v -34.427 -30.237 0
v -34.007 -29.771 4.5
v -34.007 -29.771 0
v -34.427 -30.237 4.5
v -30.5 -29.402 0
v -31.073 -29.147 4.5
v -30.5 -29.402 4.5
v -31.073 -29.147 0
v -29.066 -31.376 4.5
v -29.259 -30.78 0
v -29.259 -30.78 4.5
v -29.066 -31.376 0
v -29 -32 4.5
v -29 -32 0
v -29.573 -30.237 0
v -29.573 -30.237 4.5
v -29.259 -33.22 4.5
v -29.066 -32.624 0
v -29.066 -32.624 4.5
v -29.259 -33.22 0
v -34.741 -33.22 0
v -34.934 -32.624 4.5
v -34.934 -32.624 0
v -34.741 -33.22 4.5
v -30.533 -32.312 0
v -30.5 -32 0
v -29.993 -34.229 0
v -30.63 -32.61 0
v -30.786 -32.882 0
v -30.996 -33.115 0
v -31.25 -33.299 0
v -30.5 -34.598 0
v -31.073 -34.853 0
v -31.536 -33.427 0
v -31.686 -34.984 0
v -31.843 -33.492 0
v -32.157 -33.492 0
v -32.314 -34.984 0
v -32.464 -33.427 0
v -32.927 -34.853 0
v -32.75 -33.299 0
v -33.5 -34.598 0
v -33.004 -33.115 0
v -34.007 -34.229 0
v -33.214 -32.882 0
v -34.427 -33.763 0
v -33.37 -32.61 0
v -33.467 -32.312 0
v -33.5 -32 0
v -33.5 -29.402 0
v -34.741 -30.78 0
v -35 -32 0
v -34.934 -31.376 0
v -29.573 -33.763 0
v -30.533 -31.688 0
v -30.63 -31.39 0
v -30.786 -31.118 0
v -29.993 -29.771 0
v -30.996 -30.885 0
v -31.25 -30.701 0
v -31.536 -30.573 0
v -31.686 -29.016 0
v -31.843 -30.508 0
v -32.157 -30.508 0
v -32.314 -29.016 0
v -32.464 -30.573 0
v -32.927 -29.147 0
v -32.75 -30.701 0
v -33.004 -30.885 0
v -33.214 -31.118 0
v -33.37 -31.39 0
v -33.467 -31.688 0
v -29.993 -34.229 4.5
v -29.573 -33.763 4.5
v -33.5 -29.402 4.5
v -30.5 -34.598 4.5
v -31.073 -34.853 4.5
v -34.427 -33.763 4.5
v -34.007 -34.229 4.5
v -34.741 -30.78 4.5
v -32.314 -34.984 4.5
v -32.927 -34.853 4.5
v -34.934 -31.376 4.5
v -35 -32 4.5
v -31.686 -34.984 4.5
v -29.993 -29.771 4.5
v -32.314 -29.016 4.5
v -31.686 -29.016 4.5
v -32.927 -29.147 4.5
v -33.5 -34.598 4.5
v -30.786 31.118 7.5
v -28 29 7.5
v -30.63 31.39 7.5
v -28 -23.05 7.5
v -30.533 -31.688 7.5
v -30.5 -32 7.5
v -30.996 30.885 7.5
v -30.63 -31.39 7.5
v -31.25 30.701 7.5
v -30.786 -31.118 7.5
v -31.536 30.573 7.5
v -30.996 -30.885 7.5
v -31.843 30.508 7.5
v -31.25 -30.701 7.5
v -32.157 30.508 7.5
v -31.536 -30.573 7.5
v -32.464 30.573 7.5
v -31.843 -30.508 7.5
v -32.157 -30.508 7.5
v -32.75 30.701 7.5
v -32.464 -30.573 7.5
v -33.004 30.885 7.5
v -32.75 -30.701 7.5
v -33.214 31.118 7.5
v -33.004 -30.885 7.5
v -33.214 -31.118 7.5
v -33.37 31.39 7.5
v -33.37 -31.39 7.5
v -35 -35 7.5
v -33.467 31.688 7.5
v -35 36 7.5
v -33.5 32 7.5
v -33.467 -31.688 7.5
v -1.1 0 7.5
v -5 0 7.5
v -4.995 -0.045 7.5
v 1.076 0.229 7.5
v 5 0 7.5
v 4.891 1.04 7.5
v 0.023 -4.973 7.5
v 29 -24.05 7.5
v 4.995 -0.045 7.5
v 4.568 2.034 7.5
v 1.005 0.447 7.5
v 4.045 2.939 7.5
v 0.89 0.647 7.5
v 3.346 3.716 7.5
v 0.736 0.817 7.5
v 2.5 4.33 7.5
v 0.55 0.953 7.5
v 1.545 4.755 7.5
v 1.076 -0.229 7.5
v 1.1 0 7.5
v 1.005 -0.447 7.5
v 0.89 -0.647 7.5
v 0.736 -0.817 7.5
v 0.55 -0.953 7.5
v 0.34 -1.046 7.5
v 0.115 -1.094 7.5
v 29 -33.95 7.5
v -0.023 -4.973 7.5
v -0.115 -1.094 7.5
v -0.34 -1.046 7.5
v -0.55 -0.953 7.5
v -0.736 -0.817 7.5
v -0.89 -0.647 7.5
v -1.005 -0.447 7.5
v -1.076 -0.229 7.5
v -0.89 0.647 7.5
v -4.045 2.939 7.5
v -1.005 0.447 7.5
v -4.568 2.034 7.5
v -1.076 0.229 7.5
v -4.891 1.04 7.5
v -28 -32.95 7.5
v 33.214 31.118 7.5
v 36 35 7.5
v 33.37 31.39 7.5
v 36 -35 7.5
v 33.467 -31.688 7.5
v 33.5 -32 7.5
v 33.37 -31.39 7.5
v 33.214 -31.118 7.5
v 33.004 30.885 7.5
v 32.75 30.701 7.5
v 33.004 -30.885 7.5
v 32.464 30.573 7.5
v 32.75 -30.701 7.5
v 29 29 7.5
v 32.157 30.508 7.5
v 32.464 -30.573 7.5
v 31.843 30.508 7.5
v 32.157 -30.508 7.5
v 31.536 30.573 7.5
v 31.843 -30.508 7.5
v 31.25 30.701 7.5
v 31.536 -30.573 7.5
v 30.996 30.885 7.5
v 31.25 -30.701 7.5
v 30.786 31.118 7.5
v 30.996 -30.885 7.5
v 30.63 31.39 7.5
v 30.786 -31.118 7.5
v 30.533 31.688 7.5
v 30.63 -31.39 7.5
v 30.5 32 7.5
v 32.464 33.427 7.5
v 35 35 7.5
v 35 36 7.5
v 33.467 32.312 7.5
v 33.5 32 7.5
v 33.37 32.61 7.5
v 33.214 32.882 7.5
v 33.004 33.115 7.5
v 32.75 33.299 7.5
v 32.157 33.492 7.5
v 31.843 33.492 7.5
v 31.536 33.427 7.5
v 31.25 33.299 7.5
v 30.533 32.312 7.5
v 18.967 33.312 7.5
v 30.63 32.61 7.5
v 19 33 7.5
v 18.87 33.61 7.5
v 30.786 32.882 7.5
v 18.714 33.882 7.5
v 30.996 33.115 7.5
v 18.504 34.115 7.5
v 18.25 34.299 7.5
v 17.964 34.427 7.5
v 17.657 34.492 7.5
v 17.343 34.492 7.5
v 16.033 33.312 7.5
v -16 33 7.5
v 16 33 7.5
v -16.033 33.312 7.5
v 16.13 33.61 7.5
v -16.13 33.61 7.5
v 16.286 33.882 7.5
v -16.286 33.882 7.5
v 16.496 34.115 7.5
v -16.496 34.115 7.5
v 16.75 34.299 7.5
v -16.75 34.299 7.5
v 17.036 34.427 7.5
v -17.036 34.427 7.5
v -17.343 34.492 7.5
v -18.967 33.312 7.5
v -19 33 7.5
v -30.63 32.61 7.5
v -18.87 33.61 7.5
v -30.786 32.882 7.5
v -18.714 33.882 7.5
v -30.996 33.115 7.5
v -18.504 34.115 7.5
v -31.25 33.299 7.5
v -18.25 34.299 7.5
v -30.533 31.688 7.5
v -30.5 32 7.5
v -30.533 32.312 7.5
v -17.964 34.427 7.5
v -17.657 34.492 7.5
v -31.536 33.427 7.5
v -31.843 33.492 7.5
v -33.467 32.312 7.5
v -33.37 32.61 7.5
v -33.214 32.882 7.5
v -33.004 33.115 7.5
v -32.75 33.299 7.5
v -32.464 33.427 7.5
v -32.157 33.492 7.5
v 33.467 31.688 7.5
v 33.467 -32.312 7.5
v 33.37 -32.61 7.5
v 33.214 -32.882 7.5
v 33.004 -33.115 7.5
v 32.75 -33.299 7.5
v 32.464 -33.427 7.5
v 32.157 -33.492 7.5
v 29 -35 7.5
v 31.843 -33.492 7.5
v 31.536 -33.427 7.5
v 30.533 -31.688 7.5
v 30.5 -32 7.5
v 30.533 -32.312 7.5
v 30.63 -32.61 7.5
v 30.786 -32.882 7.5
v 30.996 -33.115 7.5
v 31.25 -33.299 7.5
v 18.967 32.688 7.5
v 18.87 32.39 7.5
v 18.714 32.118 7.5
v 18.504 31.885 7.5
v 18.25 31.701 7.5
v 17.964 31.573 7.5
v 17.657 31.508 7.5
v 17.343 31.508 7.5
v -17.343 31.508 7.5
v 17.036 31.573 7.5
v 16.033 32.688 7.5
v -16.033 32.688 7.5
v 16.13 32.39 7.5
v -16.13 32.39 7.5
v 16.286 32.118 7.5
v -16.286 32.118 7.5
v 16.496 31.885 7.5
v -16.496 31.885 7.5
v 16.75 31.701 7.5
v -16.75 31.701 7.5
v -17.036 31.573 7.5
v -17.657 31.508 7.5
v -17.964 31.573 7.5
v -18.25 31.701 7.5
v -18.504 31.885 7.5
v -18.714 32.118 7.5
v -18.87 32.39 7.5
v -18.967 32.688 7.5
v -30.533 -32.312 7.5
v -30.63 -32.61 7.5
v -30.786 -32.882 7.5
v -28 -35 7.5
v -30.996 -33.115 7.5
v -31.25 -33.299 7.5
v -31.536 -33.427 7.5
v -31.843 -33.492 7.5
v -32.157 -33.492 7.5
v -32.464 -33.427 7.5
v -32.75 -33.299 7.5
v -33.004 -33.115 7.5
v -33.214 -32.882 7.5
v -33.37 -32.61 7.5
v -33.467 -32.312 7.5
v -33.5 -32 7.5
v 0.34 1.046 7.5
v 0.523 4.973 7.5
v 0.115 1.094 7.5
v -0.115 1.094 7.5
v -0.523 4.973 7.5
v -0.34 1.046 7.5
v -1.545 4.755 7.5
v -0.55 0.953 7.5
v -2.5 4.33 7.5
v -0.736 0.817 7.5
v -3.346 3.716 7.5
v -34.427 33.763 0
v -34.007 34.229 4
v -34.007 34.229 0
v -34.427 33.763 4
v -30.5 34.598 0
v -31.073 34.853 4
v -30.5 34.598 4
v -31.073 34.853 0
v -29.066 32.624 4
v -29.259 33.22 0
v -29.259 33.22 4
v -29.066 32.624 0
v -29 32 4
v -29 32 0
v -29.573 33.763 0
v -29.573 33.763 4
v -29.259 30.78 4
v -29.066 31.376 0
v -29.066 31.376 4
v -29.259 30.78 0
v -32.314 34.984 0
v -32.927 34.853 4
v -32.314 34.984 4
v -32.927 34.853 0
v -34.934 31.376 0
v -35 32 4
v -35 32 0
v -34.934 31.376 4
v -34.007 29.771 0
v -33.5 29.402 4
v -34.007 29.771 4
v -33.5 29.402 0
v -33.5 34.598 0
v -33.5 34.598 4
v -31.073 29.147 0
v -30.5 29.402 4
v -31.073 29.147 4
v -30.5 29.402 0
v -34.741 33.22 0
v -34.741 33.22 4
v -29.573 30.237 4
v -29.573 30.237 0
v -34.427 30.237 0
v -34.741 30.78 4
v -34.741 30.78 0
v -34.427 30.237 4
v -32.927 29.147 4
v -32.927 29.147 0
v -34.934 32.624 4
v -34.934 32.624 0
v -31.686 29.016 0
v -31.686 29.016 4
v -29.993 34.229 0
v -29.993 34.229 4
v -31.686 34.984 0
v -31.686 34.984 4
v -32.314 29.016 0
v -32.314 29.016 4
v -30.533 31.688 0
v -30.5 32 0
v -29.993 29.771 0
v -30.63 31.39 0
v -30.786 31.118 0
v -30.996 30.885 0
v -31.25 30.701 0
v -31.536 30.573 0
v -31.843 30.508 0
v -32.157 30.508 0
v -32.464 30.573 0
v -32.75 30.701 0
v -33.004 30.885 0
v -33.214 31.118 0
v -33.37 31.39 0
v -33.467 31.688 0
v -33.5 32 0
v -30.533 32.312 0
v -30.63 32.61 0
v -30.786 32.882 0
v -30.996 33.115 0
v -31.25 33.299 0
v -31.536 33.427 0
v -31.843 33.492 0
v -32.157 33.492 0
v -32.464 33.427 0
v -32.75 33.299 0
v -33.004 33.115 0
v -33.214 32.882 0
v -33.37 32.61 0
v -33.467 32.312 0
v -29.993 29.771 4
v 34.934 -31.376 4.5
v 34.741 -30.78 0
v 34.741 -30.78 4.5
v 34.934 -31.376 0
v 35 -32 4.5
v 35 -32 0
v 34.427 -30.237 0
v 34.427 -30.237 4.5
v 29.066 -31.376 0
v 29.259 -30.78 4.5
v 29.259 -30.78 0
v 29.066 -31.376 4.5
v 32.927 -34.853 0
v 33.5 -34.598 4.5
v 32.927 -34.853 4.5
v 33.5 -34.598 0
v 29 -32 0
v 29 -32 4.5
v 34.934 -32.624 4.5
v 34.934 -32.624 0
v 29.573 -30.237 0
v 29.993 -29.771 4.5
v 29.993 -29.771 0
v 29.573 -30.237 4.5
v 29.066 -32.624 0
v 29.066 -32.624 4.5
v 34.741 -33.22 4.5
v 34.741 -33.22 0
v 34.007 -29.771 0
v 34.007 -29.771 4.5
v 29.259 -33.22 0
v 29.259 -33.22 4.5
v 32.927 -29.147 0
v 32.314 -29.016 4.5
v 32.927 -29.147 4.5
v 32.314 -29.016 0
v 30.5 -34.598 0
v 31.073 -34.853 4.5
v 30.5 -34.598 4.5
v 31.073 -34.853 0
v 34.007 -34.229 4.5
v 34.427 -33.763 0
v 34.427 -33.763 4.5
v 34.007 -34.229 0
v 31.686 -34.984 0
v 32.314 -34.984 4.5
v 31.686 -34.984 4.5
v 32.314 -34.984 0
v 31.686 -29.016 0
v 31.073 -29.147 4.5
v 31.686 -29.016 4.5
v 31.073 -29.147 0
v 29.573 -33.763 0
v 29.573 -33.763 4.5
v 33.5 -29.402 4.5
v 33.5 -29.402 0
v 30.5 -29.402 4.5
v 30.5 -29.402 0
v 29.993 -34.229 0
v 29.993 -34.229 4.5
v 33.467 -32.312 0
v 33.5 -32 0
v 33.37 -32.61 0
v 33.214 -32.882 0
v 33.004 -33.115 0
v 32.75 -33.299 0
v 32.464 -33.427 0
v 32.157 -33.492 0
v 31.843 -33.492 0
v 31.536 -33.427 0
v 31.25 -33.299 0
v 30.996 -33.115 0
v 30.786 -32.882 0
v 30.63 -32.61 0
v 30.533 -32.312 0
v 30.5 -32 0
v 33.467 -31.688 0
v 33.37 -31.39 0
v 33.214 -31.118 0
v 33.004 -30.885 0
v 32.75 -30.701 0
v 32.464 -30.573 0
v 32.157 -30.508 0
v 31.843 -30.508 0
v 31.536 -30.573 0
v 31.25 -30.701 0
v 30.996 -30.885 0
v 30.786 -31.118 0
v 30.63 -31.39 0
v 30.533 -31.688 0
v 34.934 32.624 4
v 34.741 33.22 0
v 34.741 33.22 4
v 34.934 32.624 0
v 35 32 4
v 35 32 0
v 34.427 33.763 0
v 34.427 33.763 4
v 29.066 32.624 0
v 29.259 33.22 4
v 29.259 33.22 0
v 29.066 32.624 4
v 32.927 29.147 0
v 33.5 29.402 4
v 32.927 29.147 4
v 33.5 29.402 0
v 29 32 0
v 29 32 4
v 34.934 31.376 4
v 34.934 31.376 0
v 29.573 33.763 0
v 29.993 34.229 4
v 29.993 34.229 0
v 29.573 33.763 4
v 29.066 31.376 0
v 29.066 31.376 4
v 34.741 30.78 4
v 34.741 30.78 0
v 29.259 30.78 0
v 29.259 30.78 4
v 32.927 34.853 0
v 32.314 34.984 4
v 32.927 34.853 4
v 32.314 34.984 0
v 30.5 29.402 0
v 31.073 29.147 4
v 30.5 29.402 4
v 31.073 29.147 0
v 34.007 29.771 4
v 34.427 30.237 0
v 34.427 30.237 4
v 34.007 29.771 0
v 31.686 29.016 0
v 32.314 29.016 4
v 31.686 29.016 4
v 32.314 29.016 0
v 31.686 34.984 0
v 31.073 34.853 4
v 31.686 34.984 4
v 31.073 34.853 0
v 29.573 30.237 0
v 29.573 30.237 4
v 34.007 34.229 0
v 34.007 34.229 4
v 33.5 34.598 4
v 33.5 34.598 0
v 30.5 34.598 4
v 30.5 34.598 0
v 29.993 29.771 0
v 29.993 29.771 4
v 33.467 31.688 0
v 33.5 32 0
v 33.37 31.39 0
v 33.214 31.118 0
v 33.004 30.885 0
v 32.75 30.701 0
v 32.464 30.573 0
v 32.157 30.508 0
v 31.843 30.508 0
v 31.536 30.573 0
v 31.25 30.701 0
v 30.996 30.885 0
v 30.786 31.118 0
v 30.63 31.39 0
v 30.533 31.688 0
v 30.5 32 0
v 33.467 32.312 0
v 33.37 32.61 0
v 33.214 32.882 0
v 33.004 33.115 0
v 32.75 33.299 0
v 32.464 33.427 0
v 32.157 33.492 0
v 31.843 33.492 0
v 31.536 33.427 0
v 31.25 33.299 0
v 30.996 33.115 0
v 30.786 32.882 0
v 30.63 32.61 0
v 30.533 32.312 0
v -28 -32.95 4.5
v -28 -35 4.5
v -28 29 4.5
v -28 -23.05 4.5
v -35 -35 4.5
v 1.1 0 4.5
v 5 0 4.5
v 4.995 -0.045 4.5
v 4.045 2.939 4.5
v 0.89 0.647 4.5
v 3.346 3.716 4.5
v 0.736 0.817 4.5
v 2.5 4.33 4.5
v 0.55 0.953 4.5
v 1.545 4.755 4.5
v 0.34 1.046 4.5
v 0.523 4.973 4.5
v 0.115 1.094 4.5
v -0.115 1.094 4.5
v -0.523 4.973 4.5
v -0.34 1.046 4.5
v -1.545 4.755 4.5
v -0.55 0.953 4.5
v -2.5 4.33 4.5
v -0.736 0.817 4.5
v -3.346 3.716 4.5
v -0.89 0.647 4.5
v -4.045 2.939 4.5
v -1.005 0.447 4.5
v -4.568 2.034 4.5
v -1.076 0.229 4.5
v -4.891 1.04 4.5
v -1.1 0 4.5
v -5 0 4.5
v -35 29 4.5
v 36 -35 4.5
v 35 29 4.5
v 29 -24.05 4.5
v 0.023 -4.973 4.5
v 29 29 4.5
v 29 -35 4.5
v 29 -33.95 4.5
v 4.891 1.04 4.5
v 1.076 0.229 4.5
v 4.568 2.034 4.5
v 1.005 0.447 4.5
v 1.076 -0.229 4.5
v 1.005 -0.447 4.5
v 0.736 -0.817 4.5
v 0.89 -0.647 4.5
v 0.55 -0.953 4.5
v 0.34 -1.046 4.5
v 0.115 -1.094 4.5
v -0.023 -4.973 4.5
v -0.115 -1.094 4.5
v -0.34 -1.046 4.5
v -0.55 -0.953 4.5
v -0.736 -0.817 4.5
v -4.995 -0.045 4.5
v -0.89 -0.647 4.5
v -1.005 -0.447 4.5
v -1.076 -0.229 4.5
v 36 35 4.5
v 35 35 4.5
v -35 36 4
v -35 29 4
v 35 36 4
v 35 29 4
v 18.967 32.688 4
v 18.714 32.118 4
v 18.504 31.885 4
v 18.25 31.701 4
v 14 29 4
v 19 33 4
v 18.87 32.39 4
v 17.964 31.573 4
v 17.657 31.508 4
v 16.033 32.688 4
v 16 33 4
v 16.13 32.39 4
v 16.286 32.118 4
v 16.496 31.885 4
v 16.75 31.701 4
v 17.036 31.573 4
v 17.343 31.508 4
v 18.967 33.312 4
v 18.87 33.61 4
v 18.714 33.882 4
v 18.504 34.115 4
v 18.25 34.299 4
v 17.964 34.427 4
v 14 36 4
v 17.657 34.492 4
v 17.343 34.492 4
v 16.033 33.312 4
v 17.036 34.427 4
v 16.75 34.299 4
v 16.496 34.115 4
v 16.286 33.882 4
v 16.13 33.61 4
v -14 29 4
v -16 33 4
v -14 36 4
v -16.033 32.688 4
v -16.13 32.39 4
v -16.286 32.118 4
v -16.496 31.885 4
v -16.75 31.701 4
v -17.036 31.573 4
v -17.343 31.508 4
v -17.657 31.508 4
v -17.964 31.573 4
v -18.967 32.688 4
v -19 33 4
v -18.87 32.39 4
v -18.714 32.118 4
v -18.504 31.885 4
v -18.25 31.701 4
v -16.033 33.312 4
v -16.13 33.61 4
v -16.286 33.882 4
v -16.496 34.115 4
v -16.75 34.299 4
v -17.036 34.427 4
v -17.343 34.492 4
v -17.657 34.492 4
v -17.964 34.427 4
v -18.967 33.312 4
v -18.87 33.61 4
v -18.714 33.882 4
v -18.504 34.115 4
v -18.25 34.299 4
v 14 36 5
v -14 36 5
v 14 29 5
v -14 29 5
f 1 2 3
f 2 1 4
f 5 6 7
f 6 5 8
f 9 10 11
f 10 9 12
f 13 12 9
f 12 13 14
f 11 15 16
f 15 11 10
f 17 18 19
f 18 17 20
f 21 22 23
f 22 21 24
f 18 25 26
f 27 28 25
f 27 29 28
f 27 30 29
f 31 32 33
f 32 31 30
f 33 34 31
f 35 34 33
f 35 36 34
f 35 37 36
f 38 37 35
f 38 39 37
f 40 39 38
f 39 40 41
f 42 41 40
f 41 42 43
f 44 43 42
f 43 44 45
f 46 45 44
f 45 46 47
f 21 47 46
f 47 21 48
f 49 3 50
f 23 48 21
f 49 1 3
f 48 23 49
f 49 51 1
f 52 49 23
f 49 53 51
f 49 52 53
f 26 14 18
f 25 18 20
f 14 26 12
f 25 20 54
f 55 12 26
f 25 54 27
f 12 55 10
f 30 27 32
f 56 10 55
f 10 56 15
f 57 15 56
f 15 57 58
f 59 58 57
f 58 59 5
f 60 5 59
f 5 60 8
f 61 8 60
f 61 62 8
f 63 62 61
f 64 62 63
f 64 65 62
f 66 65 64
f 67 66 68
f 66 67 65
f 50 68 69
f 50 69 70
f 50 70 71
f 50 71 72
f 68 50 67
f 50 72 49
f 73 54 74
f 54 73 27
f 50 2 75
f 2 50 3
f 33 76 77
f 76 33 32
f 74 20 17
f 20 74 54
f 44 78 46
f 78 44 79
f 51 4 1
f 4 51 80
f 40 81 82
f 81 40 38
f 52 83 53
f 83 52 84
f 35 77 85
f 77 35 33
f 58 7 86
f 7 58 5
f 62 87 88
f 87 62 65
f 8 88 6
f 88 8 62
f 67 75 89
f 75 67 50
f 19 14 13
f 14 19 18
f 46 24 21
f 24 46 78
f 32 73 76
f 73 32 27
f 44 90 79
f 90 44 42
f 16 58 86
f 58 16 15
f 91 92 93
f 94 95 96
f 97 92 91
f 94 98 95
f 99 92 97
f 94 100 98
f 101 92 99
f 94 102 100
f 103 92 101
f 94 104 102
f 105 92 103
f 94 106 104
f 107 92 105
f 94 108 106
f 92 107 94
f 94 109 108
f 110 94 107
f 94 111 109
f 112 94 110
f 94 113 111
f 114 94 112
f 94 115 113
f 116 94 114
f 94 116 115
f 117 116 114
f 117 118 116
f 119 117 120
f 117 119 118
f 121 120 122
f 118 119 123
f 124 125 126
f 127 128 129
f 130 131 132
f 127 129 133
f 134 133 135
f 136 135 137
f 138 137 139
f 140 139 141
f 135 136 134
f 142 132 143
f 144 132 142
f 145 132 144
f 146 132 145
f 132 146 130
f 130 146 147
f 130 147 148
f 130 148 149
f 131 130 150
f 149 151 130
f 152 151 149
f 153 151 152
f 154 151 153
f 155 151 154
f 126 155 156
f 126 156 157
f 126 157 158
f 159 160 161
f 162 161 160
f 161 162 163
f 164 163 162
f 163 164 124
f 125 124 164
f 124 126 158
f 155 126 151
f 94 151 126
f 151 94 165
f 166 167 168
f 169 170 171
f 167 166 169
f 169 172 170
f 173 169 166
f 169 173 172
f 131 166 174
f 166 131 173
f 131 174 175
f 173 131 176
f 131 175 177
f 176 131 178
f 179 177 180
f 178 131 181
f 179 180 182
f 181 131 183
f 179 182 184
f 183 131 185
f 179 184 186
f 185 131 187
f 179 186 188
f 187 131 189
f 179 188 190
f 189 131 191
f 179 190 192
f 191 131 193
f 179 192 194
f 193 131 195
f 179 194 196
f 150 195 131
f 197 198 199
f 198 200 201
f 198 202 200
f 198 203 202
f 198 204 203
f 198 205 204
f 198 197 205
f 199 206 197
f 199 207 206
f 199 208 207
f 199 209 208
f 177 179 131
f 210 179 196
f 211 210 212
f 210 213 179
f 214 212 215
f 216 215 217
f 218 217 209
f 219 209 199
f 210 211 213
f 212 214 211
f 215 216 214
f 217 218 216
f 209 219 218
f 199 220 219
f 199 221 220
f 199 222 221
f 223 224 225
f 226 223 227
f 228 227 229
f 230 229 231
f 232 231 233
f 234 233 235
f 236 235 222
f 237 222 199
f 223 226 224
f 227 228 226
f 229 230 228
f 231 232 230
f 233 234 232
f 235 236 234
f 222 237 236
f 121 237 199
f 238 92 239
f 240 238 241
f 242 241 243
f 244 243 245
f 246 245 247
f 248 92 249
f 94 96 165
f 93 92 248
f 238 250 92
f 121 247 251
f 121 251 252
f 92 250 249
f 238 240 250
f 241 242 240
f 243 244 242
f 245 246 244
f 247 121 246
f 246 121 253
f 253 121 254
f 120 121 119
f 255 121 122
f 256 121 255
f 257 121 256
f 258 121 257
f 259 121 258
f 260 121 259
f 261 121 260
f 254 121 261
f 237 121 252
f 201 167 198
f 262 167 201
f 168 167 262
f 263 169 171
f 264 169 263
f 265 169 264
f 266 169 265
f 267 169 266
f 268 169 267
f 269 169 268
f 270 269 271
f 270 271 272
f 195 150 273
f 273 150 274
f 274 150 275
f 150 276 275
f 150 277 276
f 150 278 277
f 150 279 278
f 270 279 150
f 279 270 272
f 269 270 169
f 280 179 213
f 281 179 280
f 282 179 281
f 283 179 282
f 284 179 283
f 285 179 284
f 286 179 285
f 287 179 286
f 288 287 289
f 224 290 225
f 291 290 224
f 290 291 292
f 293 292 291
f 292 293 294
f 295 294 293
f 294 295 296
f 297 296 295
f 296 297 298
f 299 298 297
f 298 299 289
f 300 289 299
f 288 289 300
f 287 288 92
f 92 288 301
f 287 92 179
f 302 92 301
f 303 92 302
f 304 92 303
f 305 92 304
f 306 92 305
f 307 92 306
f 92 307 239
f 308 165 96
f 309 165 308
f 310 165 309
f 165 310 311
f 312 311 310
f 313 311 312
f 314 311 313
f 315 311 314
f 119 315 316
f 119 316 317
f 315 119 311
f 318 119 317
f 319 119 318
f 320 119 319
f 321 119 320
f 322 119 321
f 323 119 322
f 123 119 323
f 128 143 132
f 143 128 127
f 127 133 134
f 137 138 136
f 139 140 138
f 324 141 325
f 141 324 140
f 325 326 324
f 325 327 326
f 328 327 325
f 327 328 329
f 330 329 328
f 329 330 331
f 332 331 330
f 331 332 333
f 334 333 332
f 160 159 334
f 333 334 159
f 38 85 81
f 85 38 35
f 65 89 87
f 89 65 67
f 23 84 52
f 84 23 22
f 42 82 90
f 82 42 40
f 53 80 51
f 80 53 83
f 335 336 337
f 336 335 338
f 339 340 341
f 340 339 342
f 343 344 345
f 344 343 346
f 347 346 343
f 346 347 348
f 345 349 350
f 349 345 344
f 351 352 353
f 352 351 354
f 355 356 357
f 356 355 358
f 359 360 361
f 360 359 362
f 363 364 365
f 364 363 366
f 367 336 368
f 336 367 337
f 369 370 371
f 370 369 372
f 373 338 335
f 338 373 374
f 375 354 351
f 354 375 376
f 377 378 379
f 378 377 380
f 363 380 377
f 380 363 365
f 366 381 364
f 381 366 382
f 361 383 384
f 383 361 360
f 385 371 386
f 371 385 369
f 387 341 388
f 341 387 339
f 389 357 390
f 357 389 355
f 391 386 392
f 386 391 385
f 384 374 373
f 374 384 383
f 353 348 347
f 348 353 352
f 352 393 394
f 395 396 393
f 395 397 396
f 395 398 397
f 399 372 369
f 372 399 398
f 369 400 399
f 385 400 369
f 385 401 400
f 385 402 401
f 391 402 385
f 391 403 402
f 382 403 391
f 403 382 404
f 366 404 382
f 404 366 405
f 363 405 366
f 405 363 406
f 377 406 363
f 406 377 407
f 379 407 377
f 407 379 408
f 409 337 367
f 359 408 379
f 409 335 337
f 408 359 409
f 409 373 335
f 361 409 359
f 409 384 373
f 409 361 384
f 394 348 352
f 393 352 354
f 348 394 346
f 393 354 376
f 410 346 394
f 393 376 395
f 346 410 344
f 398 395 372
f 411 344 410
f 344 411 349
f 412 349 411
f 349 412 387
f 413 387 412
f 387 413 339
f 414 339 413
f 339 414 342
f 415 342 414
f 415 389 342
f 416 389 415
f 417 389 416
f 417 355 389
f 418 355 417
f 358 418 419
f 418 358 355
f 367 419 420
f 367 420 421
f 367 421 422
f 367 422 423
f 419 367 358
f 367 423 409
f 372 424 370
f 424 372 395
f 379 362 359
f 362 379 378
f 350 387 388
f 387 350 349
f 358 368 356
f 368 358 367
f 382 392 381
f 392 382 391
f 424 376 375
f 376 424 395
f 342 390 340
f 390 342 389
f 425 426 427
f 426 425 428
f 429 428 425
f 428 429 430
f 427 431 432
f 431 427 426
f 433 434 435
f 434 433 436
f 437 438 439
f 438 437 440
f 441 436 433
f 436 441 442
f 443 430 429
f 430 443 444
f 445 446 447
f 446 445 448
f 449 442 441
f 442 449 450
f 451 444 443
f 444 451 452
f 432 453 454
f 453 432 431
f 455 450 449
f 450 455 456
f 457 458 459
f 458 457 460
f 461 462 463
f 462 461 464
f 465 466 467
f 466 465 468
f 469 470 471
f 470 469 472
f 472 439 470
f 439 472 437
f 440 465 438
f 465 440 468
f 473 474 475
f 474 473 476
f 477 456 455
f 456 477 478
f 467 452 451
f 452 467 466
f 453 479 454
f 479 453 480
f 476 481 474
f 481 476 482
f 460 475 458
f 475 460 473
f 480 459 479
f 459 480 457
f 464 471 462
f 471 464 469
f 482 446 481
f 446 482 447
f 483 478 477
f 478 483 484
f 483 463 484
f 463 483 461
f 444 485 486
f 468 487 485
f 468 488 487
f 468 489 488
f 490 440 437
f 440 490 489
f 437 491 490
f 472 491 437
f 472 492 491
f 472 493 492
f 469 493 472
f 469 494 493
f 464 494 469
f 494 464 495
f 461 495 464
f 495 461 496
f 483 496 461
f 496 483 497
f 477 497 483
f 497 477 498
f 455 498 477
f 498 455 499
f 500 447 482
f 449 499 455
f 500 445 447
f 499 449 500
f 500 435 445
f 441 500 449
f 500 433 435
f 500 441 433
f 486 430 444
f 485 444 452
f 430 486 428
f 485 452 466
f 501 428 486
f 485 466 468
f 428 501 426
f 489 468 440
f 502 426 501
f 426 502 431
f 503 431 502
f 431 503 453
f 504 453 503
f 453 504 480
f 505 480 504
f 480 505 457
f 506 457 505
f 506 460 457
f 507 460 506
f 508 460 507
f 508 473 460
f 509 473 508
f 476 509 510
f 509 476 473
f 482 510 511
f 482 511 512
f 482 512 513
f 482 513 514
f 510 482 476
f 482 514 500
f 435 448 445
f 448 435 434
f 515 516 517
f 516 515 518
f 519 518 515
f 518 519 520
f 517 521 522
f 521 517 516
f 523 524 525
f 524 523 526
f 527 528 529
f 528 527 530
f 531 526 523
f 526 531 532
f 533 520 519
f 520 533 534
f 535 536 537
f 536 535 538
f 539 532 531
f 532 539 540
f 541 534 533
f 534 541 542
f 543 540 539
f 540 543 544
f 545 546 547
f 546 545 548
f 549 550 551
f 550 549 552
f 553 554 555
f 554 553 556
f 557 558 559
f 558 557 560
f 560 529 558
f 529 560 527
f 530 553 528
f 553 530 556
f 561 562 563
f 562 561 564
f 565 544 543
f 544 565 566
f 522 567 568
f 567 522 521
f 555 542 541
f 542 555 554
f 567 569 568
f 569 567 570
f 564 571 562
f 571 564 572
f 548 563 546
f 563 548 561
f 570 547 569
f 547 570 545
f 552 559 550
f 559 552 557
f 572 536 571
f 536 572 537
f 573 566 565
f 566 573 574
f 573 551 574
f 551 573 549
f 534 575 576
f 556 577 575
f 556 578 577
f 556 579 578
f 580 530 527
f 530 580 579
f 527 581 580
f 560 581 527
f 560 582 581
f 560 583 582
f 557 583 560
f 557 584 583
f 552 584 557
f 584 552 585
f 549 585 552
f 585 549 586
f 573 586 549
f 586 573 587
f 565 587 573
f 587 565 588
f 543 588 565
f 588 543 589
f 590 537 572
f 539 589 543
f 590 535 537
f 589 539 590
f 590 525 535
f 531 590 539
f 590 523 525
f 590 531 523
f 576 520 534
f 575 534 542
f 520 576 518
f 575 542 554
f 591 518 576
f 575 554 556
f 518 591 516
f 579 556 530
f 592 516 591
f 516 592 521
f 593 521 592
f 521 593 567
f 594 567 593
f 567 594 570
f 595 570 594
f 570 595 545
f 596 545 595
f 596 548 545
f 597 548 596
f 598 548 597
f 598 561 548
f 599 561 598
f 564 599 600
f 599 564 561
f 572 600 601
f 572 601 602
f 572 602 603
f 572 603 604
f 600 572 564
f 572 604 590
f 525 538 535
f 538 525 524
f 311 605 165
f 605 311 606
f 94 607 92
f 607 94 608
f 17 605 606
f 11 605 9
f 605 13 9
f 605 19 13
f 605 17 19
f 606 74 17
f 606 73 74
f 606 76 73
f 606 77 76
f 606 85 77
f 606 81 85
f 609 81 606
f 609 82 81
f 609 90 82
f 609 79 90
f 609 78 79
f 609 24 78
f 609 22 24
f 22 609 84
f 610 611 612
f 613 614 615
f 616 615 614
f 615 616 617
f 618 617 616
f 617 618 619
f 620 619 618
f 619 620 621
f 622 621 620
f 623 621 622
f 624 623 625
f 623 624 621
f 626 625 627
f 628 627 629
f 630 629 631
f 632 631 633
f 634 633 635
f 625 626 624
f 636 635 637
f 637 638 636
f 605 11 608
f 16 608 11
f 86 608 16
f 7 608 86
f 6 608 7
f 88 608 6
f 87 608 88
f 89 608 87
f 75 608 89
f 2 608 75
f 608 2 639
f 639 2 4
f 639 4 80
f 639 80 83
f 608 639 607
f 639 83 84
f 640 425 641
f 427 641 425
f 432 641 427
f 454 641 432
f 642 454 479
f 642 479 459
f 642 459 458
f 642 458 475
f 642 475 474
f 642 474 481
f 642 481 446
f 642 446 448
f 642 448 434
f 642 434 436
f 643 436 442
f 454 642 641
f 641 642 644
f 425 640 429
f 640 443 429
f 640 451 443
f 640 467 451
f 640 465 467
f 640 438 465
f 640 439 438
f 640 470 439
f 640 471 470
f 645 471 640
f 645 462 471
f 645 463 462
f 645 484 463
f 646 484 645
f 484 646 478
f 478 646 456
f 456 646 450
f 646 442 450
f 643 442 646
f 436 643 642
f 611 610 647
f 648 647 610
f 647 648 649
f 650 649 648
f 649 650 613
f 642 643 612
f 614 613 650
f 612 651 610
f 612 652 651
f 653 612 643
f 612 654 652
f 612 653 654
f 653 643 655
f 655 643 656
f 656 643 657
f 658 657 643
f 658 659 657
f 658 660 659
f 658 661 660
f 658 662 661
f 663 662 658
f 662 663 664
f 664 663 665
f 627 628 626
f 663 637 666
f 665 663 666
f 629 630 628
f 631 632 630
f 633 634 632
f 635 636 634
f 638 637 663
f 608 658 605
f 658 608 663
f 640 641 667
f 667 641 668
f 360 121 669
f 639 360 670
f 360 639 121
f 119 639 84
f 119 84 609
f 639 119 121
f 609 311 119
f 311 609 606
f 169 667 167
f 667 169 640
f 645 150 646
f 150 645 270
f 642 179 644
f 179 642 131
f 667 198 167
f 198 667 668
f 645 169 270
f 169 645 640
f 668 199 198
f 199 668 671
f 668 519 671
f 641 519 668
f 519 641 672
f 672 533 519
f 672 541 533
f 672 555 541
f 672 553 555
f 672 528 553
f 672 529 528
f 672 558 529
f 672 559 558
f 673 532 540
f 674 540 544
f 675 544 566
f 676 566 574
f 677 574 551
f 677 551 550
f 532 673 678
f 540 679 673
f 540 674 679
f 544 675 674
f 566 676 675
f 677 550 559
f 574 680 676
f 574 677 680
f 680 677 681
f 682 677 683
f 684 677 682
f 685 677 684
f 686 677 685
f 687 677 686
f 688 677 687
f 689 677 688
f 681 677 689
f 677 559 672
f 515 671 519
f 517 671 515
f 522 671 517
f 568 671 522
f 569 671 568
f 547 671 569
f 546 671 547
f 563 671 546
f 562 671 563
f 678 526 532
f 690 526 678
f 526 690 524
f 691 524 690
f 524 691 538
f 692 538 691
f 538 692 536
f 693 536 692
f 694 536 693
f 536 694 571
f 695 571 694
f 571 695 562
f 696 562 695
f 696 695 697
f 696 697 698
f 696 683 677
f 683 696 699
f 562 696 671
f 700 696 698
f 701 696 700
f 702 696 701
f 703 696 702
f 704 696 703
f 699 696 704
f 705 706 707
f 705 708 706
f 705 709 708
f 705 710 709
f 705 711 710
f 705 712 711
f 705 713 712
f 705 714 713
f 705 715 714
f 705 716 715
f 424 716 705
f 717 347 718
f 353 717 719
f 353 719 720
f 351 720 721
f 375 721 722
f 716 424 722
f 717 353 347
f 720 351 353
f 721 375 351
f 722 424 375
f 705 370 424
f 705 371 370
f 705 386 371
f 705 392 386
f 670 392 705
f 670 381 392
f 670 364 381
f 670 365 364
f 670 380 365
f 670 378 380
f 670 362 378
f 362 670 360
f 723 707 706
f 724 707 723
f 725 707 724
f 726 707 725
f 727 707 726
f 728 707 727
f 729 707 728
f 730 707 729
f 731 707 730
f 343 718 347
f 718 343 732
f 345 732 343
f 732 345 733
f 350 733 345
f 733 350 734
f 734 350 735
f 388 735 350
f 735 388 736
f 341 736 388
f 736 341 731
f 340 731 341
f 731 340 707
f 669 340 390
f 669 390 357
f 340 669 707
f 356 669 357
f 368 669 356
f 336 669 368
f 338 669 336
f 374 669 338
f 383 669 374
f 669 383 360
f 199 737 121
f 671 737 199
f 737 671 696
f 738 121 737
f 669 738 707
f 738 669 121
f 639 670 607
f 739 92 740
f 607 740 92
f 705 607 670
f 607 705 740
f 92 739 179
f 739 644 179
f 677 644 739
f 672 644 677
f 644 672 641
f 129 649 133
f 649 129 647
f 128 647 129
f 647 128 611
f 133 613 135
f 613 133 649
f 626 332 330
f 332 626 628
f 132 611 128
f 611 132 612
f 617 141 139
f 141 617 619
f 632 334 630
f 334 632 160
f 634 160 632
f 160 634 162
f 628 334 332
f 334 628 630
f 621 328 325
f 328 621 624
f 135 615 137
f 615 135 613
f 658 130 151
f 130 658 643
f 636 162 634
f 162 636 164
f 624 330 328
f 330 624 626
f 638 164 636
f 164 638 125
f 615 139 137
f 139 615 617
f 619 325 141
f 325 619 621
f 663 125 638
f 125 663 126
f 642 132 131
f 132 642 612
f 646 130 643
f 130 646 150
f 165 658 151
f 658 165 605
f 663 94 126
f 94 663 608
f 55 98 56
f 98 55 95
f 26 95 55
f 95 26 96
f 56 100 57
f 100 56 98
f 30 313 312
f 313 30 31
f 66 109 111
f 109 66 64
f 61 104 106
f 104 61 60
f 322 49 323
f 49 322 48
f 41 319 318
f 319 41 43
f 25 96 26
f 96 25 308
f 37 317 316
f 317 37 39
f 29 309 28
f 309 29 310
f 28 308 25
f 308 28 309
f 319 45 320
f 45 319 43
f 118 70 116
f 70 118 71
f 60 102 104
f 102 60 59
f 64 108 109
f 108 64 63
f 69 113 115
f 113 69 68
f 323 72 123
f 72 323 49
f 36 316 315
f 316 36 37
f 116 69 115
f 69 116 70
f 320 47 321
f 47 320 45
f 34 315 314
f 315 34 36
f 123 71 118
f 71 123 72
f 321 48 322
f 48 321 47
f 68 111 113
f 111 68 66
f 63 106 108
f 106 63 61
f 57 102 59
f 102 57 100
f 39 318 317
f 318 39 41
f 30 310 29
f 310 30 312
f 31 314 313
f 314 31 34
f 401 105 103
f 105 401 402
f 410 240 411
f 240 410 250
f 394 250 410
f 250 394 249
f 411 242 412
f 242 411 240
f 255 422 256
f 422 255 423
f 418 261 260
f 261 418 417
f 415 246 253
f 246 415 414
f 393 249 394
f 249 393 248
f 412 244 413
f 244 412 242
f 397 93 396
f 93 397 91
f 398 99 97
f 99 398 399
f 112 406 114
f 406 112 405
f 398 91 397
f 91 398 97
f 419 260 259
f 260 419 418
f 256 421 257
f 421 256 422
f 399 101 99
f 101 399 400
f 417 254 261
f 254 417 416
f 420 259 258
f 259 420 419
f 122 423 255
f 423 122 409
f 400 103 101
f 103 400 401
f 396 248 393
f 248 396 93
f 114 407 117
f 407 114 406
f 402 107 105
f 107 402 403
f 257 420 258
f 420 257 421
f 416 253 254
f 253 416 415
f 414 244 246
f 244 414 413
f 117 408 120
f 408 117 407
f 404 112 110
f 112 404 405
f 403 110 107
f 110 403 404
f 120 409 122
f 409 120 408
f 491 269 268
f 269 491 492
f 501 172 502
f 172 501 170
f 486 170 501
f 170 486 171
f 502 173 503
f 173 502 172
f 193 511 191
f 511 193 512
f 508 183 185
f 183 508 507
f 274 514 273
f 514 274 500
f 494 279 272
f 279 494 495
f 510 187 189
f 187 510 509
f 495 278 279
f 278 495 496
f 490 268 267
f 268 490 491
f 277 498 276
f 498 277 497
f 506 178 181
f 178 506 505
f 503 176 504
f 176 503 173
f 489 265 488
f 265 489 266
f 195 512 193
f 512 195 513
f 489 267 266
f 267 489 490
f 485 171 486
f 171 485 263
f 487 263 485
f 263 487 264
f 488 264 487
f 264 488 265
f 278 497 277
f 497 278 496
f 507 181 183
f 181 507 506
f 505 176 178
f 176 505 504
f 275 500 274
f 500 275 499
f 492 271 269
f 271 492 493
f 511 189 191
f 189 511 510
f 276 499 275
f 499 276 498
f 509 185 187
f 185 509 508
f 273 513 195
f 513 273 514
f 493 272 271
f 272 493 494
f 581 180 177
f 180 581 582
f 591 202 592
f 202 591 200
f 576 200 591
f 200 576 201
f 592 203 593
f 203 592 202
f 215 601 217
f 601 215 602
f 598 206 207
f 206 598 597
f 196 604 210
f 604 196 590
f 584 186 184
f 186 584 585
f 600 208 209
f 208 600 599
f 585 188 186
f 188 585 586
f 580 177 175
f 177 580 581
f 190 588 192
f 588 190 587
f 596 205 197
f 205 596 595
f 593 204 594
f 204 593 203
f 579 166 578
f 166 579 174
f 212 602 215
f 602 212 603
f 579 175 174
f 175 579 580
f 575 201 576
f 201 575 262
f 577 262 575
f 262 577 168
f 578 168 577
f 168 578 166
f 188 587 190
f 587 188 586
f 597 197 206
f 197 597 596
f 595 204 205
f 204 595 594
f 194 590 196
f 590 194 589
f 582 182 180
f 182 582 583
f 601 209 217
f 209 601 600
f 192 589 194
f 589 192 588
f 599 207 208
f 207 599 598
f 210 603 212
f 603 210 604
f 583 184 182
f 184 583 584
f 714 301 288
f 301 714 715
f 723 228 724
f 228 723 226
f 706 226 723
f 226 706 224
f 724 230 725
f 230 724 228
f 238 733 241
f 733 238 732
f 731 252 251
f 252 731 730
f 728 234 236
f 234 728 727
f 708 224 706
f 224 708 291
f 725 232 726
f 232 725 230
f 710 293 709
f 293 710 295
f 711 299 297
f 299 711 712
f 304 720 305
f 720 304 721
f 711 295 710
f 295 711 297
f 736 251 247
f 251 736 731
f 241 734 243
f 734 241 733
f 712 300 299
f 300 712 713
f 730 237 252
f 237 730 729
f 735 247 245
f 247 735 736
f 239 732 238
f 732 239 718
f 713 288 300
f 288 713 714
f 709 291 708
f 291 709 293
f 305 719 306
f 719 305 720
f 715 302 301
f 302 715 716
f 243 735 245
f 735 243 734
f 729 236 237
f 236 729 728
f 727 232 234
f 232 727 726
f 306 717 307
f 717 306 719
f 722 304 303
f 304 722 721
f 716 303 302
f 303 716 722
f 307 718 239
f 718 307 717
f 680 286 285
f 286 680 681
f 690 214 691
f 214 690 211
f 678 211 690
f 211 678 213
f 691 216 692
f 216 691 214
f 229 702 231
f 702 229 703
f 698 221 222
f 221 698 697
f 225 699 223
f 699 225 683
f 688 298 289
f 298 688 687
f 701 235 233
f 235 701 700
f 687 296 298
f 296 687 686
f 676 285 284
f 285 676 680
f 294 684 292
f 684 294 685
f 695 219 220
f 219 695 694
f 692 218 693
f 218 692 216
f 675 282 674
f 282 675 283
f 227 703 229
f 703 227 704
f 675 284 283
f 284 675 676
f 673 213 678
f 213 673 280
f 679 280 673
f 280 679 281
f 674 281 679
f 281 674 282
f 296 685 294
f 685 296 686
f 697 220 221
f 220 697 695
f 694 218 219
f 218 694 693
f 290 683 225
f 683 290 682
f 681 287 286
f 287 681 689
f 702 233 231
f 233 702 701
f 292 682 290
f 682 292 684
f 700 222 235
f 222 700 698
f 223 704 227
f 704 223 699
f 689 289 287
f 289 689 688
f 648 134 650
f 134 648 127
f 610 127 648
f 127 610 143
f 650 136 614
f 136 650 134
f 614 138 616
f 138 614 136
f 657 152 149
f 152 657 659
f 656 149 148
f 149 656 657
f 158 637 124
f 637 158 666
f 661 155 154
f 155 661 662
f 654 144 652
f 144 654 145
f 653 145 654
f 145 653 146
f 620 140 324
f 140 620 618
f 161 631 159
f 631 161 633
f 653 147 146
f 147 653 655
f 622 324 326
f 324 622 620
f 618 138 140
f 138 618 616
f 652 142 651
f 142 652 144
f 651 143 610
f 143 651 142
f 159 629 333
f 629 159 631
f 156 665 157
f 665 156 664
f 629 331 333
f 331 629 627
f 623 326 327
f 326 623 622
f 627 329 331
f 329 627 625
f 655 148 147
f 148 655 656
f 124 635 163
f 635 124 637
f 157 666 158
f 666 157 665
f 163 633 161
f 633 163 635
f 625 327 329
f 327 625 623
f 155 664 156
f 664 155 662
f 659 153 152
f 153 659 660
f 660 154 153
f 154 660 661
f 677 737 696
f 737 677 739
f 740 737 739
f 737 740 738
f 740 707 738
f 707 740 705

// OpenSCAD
$fn=30;

screw_offset=32;
stepper_screw_offset=35/2;
difference() {
    union() {
        // four main pillars
        for (i = [-screw_offset:2*screw_offset:screw_offset]) {

            for (j = [-screw_offset:2*screw_offset:screw_offset]) {
                translate([i, j, 0]) {
                    cylinder(d=6,h=7.5);
                }
            }
        }
        // stepper mounting bracket
        translate([0,screw_offset + .5,4+(3.5/2)])
            cube([2*screw_offset + 6, 7, 3.5],center=true);
        
        for (i = [-screw_offset:2*screw_offset:screw_offset]) {
            translate([i + .5,0,6])
                cube([7, 2*screw_offset + 6, 3],center=true);
        }
        
        translate([0, 0 ,4.5])
            cylinder(d=10,h=3);
        
        rotate([0,0,45])
            translate([0,-23, 6])
            cube([7, sqrt(2) * screw_offset, 3],center=true);
        
        rotate([0,0,-45])
            translate([0,-23, 6])
            cube([7, sqrt(2) * screw_offset, 3],center=true);
    }

    for (i = [-screw_offset:2*screw_offset:screw_offset]) {
        for (j = [-screw_offset:2*screw_offset:screw_offset]) {
            translate([i, j, 0])
                cylinder(d=3,h=8);
        }
    }
    
    // center hole for connecting other gears
    // 1000 ft has a diameter of 2mm -> 2.2mm
    cylinder(d=2.2, h=10);
    
    // additional space for gear
    translate([0,screw_offset,4])
        cube([28,8,2],center=true);
    
    for (i = [-stepper_screw_offset:2*stepper_screw_offset:stepper_screw_offset]) {
        translate([i, screw_offset + 1, 0])
            cylinder(d=3,h=8);
    }
}
